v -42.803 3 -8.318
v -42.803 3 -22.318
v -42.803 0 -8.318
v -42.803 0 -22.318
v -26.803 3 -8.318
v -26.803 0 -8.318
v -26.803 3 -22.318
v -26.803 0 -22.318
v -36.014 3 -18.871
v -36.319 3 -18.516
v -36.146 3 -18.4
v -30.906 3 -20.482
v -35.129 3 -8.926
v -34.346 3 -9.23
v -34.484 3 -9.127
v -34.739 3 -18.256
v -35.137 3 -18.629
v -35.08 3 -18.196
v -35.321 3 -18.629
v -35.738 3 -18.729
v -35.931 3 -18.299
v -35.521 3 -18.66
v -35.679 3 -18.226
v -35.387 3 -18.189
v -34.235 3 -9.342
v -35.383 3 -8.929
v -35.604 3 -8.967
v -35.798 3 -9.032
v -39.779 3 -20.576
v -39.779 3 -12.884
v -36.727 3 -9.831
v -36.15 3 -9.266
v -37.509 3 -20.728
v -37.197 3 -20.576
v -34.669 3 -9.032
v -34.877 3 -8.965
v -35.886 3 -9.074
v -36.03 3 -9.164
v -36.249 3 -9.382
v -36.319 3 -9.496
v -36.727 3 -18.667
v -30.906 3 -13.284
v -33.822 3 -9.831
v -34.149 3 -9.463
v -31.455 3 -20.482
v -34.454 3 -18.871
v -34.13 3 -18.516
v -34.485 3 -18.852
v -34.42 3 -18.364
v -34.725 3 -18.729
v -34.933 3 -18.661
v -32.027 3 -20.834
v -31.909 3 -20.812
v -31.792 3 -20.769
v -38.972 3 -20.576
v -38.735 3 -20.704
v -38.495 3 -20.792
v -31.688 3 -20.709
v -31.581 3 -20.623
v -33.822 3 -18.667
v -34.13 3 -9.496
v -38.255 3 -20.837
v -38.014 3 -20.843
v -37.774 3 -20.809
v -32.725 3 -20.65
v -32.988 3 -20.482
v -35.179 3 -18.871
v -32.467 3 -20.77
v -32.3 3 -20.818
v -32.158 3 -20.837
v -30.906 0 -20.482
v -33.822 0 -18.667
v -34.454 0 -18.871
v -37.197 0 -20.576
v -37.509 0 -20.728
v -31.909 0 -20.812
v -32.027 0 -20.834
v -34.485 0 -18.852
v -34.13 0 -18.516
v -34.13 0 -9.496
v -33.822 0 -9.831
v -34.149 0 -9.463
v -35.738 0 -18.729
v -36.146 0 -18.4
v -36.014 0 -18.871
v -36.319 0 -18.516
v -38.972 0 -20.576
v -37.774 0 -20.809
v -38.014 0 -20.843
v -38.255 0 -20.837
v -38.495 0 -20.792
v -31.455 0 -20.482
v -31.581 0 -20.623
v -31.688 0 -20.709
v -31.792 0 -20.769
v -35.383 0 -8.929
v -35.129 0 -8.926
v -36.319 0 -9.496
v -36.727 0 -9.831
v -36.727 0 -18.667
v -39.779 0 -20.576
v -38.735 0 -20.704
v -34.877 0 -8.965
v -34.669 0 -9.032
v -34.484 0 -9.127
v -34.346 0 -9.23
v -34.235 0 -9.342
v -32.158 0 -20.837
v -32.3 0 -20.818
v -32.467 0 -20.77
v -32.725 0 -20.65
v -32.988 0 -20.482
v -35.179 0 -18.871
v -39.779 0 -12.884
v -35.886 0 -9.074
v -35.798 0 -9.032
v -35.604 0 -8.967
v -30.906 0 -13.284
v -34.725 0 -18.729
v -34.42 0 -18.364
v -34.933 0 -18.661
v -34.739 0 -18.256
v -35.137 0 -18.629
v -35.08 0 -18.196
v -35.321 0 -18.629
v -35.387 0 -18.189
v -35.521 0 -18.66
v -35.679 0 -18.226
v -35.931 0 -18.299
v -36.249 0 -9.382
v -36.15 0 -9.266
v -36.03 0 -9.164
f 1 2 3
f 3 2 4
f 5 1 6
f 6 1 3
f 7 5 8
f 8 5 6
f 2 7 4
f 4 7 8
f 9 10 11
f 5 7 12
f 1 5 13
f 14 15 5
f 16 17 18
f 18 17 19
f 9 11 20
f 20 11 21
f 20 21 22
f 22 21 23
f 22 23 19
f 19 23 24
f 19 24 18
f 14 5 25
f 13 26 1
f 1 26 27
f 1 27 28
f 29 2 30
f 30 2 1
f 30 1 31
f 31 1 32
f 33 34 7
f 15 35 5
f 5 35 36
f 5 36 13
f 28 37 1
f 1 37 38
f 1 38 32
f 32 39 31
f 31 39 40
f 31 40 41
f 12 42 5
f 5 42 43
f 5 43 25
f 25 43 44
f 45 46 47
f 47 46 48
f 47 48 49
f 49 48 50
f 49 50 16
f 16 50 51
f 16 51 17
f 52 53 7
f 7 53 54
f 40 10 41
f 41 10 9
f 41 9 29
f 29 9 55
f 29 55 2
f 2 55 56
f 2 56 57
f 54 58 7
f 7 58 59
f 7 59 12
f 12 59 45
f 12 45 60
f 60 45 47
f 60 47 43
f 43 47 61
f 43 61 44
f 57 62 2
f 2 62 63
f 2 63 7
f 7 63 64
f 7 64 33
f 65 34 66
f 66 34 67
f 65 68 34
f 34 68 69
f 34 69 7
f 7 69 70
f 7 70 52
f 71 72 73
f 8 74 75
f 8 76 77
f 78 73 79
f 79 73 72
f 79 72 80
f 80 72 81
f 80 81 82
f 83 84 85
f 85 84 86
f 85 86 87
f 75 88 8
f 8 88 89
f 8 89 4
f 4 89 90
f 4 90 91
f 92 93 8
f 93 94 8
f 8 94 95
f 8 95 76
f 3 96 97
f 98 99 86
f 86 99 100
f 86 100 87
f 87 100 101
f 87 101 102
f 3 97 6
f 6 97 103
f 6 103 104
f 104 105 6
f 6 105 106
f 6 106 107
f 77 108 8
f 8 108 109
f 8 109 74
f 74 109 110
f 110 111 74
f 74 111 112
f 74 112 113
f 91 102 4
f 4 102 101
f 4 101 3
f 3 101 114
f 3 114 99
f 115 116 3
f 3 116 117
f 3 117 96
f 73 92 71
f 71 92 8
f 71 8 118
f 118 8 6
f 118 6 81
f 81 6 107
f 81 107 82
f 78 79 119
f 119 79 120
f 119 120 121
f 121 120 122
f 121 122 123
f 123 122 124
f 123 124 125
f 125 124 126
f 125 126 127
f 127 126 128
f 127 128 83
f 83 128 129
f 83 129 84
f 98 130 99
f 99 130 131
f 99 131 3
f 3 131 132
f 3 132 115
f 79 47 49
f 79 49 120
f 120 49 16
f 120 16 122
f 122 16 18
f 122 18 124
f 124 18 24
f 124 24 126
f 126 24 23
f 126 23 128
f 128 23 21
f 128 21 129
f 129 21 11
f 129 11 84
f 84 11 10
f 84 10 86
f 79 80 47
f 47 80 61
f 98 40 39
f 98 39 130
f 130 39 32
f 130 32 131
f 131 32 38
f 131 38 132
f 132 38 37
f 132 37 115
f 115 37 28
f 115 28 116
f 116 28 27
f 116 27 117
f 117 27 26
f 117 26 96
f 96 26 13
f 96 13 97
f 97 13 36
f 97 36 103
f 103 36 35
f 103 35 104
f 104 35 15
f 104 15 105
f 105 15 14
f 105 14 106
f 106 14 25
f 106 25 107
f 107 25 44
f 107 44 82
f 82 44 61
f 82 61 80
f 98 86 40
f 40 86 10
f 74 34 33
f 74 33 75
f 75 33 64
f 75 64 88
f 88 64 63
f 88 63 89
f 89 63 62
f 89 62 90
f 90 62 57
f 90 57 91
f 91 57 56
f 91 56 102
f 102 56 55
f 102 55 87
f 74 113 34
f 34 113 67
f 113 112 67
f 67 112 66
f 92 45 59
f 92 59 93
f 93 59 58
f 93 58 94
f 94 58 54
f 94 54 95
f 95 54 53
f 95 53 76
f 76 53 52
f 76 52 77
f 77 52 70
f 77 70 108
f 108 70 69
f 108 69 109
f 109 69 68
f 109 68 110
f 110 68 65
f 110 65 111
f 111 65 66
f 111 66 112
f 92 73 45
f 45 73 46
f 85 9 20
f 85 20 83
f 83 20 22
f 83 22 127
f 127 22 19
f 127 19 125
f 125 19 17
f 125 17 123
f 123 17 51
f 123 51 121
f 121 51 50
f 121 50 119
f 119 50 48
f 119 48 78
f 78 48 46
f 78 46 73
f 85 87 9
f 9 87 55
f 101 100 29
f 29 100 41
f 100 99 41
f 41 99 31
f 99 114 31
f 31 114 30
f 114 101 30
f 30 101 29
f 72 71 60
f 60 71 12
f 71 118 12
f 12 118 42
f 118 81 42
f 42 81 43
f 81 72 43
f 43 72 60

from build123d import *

# Parameters (mm, degrees)
SKETCH2_W           = 16
SKETCH2_H           = 14
BOSS_EXTRUDE1_DEPTH = 3
CUT_EXTRUDE1_DEPTH  = 3


with BuildPart() as part:
    # Sketch2 → Boss-Extrude1 (new body)
    with BuildSketch(Plane(origin=(0, 0, 0), x_dir=(1, 0, 0), z_dir=(0, 1, 0))):
        with Locations((-34.802547771, 15.318471338)):
            Rectangle(SKETCH2_W, SKETCH2_H)
    extrude(amount=BOSS_EXTRUDE1_DEPTH)

    # Sketch4 → Cut-Extrude1 (cut)
    with BuildSketch(Plane(origin=(0, 3, 0), x_dir=(1, 0, 0), z_dir=(0, 1, 0))):
        with BuildLine():
            Line((-36.318911755, 18.516121759), (-36.318911755, 9.495766822))
            add(Edge.make_bspline(
                [(-36.318911755, 9.495766822), (-35.913871603, 8.720893634), (-34.543281821, 8.741015584), (-34.130046647, 9.495766822)],
                knots=[0, 0, 0, 0, 1, 1, 1, 1], degree=3))
            Line((-34.130046647, 9.495766822), (-34.130046647, 18.516121759))
            add(Edge.make_bspline(
                [(-36.318911755, 18.516121759), (-35.70959357, 18.038988867), (-34.764466339, 18.114801672), (-34.130046647, 18.516121759)],
                knots=[0, 0, 0, 0, 1, 1, 1, 1], degree=3))
        make_face()
        Polygon((-33.822053837, 18.666521758), (-33.822053837, 9.831273412), (-30.905859423, 13.283968712), (-30.905859423, 20.48178763), align=None)
        Polygon((-36.726560822, 18.666521758), (-36.726560822, 9.831273412), (-39.779226537, 12.883939127), (-39.779226537, 20.575922696), align=None)
        with BuildLine():
            Line((-37.197236152, 20.575922696), (-35.179234522, 18.871490486))
            Line((-35.179234522, 18.871490486), (-35.103321149, 18.927279173))
            Line((-35.103321149, 18.927279173), (-32.988053911, 20.48178763))
            add(Edge.make_bspline(
                [(-32.988053911, 20.48178763), (-31.996391296, 21.194388002), (-31.454997121, 20.48178763)],
                knots=[0, 0, 0, 1, 1, 1], degree=2))
            Line((-31.454997121, 20.48178763), (-34.453871369, 18.871490486))
            add(Edge.make_bspline(
                [(-36.013823893, 18.871490486), (-35.223935459, 18.378867512), (-34.453871369, 18.871490486)],
                knots=[0, 0, 0, 1, 1, 1], degree=2))
            Line((-36.013823893, 18.871490486), (-38.972354542, 20.575922696))
            add(Edge.make_bspline(
                [(-38.972354542, 20.575922696), (-38.119189313, 21.114619825), (-37.197236152, 20.575922696)],
                knots=[0, 0, 0, 1, 1, 1], degree=2))
        make_face()
    extrude(amount=-CUT_EXTRUDE1_DEPTH, mode=Mode.SUBTRACT)


solid = part.part
